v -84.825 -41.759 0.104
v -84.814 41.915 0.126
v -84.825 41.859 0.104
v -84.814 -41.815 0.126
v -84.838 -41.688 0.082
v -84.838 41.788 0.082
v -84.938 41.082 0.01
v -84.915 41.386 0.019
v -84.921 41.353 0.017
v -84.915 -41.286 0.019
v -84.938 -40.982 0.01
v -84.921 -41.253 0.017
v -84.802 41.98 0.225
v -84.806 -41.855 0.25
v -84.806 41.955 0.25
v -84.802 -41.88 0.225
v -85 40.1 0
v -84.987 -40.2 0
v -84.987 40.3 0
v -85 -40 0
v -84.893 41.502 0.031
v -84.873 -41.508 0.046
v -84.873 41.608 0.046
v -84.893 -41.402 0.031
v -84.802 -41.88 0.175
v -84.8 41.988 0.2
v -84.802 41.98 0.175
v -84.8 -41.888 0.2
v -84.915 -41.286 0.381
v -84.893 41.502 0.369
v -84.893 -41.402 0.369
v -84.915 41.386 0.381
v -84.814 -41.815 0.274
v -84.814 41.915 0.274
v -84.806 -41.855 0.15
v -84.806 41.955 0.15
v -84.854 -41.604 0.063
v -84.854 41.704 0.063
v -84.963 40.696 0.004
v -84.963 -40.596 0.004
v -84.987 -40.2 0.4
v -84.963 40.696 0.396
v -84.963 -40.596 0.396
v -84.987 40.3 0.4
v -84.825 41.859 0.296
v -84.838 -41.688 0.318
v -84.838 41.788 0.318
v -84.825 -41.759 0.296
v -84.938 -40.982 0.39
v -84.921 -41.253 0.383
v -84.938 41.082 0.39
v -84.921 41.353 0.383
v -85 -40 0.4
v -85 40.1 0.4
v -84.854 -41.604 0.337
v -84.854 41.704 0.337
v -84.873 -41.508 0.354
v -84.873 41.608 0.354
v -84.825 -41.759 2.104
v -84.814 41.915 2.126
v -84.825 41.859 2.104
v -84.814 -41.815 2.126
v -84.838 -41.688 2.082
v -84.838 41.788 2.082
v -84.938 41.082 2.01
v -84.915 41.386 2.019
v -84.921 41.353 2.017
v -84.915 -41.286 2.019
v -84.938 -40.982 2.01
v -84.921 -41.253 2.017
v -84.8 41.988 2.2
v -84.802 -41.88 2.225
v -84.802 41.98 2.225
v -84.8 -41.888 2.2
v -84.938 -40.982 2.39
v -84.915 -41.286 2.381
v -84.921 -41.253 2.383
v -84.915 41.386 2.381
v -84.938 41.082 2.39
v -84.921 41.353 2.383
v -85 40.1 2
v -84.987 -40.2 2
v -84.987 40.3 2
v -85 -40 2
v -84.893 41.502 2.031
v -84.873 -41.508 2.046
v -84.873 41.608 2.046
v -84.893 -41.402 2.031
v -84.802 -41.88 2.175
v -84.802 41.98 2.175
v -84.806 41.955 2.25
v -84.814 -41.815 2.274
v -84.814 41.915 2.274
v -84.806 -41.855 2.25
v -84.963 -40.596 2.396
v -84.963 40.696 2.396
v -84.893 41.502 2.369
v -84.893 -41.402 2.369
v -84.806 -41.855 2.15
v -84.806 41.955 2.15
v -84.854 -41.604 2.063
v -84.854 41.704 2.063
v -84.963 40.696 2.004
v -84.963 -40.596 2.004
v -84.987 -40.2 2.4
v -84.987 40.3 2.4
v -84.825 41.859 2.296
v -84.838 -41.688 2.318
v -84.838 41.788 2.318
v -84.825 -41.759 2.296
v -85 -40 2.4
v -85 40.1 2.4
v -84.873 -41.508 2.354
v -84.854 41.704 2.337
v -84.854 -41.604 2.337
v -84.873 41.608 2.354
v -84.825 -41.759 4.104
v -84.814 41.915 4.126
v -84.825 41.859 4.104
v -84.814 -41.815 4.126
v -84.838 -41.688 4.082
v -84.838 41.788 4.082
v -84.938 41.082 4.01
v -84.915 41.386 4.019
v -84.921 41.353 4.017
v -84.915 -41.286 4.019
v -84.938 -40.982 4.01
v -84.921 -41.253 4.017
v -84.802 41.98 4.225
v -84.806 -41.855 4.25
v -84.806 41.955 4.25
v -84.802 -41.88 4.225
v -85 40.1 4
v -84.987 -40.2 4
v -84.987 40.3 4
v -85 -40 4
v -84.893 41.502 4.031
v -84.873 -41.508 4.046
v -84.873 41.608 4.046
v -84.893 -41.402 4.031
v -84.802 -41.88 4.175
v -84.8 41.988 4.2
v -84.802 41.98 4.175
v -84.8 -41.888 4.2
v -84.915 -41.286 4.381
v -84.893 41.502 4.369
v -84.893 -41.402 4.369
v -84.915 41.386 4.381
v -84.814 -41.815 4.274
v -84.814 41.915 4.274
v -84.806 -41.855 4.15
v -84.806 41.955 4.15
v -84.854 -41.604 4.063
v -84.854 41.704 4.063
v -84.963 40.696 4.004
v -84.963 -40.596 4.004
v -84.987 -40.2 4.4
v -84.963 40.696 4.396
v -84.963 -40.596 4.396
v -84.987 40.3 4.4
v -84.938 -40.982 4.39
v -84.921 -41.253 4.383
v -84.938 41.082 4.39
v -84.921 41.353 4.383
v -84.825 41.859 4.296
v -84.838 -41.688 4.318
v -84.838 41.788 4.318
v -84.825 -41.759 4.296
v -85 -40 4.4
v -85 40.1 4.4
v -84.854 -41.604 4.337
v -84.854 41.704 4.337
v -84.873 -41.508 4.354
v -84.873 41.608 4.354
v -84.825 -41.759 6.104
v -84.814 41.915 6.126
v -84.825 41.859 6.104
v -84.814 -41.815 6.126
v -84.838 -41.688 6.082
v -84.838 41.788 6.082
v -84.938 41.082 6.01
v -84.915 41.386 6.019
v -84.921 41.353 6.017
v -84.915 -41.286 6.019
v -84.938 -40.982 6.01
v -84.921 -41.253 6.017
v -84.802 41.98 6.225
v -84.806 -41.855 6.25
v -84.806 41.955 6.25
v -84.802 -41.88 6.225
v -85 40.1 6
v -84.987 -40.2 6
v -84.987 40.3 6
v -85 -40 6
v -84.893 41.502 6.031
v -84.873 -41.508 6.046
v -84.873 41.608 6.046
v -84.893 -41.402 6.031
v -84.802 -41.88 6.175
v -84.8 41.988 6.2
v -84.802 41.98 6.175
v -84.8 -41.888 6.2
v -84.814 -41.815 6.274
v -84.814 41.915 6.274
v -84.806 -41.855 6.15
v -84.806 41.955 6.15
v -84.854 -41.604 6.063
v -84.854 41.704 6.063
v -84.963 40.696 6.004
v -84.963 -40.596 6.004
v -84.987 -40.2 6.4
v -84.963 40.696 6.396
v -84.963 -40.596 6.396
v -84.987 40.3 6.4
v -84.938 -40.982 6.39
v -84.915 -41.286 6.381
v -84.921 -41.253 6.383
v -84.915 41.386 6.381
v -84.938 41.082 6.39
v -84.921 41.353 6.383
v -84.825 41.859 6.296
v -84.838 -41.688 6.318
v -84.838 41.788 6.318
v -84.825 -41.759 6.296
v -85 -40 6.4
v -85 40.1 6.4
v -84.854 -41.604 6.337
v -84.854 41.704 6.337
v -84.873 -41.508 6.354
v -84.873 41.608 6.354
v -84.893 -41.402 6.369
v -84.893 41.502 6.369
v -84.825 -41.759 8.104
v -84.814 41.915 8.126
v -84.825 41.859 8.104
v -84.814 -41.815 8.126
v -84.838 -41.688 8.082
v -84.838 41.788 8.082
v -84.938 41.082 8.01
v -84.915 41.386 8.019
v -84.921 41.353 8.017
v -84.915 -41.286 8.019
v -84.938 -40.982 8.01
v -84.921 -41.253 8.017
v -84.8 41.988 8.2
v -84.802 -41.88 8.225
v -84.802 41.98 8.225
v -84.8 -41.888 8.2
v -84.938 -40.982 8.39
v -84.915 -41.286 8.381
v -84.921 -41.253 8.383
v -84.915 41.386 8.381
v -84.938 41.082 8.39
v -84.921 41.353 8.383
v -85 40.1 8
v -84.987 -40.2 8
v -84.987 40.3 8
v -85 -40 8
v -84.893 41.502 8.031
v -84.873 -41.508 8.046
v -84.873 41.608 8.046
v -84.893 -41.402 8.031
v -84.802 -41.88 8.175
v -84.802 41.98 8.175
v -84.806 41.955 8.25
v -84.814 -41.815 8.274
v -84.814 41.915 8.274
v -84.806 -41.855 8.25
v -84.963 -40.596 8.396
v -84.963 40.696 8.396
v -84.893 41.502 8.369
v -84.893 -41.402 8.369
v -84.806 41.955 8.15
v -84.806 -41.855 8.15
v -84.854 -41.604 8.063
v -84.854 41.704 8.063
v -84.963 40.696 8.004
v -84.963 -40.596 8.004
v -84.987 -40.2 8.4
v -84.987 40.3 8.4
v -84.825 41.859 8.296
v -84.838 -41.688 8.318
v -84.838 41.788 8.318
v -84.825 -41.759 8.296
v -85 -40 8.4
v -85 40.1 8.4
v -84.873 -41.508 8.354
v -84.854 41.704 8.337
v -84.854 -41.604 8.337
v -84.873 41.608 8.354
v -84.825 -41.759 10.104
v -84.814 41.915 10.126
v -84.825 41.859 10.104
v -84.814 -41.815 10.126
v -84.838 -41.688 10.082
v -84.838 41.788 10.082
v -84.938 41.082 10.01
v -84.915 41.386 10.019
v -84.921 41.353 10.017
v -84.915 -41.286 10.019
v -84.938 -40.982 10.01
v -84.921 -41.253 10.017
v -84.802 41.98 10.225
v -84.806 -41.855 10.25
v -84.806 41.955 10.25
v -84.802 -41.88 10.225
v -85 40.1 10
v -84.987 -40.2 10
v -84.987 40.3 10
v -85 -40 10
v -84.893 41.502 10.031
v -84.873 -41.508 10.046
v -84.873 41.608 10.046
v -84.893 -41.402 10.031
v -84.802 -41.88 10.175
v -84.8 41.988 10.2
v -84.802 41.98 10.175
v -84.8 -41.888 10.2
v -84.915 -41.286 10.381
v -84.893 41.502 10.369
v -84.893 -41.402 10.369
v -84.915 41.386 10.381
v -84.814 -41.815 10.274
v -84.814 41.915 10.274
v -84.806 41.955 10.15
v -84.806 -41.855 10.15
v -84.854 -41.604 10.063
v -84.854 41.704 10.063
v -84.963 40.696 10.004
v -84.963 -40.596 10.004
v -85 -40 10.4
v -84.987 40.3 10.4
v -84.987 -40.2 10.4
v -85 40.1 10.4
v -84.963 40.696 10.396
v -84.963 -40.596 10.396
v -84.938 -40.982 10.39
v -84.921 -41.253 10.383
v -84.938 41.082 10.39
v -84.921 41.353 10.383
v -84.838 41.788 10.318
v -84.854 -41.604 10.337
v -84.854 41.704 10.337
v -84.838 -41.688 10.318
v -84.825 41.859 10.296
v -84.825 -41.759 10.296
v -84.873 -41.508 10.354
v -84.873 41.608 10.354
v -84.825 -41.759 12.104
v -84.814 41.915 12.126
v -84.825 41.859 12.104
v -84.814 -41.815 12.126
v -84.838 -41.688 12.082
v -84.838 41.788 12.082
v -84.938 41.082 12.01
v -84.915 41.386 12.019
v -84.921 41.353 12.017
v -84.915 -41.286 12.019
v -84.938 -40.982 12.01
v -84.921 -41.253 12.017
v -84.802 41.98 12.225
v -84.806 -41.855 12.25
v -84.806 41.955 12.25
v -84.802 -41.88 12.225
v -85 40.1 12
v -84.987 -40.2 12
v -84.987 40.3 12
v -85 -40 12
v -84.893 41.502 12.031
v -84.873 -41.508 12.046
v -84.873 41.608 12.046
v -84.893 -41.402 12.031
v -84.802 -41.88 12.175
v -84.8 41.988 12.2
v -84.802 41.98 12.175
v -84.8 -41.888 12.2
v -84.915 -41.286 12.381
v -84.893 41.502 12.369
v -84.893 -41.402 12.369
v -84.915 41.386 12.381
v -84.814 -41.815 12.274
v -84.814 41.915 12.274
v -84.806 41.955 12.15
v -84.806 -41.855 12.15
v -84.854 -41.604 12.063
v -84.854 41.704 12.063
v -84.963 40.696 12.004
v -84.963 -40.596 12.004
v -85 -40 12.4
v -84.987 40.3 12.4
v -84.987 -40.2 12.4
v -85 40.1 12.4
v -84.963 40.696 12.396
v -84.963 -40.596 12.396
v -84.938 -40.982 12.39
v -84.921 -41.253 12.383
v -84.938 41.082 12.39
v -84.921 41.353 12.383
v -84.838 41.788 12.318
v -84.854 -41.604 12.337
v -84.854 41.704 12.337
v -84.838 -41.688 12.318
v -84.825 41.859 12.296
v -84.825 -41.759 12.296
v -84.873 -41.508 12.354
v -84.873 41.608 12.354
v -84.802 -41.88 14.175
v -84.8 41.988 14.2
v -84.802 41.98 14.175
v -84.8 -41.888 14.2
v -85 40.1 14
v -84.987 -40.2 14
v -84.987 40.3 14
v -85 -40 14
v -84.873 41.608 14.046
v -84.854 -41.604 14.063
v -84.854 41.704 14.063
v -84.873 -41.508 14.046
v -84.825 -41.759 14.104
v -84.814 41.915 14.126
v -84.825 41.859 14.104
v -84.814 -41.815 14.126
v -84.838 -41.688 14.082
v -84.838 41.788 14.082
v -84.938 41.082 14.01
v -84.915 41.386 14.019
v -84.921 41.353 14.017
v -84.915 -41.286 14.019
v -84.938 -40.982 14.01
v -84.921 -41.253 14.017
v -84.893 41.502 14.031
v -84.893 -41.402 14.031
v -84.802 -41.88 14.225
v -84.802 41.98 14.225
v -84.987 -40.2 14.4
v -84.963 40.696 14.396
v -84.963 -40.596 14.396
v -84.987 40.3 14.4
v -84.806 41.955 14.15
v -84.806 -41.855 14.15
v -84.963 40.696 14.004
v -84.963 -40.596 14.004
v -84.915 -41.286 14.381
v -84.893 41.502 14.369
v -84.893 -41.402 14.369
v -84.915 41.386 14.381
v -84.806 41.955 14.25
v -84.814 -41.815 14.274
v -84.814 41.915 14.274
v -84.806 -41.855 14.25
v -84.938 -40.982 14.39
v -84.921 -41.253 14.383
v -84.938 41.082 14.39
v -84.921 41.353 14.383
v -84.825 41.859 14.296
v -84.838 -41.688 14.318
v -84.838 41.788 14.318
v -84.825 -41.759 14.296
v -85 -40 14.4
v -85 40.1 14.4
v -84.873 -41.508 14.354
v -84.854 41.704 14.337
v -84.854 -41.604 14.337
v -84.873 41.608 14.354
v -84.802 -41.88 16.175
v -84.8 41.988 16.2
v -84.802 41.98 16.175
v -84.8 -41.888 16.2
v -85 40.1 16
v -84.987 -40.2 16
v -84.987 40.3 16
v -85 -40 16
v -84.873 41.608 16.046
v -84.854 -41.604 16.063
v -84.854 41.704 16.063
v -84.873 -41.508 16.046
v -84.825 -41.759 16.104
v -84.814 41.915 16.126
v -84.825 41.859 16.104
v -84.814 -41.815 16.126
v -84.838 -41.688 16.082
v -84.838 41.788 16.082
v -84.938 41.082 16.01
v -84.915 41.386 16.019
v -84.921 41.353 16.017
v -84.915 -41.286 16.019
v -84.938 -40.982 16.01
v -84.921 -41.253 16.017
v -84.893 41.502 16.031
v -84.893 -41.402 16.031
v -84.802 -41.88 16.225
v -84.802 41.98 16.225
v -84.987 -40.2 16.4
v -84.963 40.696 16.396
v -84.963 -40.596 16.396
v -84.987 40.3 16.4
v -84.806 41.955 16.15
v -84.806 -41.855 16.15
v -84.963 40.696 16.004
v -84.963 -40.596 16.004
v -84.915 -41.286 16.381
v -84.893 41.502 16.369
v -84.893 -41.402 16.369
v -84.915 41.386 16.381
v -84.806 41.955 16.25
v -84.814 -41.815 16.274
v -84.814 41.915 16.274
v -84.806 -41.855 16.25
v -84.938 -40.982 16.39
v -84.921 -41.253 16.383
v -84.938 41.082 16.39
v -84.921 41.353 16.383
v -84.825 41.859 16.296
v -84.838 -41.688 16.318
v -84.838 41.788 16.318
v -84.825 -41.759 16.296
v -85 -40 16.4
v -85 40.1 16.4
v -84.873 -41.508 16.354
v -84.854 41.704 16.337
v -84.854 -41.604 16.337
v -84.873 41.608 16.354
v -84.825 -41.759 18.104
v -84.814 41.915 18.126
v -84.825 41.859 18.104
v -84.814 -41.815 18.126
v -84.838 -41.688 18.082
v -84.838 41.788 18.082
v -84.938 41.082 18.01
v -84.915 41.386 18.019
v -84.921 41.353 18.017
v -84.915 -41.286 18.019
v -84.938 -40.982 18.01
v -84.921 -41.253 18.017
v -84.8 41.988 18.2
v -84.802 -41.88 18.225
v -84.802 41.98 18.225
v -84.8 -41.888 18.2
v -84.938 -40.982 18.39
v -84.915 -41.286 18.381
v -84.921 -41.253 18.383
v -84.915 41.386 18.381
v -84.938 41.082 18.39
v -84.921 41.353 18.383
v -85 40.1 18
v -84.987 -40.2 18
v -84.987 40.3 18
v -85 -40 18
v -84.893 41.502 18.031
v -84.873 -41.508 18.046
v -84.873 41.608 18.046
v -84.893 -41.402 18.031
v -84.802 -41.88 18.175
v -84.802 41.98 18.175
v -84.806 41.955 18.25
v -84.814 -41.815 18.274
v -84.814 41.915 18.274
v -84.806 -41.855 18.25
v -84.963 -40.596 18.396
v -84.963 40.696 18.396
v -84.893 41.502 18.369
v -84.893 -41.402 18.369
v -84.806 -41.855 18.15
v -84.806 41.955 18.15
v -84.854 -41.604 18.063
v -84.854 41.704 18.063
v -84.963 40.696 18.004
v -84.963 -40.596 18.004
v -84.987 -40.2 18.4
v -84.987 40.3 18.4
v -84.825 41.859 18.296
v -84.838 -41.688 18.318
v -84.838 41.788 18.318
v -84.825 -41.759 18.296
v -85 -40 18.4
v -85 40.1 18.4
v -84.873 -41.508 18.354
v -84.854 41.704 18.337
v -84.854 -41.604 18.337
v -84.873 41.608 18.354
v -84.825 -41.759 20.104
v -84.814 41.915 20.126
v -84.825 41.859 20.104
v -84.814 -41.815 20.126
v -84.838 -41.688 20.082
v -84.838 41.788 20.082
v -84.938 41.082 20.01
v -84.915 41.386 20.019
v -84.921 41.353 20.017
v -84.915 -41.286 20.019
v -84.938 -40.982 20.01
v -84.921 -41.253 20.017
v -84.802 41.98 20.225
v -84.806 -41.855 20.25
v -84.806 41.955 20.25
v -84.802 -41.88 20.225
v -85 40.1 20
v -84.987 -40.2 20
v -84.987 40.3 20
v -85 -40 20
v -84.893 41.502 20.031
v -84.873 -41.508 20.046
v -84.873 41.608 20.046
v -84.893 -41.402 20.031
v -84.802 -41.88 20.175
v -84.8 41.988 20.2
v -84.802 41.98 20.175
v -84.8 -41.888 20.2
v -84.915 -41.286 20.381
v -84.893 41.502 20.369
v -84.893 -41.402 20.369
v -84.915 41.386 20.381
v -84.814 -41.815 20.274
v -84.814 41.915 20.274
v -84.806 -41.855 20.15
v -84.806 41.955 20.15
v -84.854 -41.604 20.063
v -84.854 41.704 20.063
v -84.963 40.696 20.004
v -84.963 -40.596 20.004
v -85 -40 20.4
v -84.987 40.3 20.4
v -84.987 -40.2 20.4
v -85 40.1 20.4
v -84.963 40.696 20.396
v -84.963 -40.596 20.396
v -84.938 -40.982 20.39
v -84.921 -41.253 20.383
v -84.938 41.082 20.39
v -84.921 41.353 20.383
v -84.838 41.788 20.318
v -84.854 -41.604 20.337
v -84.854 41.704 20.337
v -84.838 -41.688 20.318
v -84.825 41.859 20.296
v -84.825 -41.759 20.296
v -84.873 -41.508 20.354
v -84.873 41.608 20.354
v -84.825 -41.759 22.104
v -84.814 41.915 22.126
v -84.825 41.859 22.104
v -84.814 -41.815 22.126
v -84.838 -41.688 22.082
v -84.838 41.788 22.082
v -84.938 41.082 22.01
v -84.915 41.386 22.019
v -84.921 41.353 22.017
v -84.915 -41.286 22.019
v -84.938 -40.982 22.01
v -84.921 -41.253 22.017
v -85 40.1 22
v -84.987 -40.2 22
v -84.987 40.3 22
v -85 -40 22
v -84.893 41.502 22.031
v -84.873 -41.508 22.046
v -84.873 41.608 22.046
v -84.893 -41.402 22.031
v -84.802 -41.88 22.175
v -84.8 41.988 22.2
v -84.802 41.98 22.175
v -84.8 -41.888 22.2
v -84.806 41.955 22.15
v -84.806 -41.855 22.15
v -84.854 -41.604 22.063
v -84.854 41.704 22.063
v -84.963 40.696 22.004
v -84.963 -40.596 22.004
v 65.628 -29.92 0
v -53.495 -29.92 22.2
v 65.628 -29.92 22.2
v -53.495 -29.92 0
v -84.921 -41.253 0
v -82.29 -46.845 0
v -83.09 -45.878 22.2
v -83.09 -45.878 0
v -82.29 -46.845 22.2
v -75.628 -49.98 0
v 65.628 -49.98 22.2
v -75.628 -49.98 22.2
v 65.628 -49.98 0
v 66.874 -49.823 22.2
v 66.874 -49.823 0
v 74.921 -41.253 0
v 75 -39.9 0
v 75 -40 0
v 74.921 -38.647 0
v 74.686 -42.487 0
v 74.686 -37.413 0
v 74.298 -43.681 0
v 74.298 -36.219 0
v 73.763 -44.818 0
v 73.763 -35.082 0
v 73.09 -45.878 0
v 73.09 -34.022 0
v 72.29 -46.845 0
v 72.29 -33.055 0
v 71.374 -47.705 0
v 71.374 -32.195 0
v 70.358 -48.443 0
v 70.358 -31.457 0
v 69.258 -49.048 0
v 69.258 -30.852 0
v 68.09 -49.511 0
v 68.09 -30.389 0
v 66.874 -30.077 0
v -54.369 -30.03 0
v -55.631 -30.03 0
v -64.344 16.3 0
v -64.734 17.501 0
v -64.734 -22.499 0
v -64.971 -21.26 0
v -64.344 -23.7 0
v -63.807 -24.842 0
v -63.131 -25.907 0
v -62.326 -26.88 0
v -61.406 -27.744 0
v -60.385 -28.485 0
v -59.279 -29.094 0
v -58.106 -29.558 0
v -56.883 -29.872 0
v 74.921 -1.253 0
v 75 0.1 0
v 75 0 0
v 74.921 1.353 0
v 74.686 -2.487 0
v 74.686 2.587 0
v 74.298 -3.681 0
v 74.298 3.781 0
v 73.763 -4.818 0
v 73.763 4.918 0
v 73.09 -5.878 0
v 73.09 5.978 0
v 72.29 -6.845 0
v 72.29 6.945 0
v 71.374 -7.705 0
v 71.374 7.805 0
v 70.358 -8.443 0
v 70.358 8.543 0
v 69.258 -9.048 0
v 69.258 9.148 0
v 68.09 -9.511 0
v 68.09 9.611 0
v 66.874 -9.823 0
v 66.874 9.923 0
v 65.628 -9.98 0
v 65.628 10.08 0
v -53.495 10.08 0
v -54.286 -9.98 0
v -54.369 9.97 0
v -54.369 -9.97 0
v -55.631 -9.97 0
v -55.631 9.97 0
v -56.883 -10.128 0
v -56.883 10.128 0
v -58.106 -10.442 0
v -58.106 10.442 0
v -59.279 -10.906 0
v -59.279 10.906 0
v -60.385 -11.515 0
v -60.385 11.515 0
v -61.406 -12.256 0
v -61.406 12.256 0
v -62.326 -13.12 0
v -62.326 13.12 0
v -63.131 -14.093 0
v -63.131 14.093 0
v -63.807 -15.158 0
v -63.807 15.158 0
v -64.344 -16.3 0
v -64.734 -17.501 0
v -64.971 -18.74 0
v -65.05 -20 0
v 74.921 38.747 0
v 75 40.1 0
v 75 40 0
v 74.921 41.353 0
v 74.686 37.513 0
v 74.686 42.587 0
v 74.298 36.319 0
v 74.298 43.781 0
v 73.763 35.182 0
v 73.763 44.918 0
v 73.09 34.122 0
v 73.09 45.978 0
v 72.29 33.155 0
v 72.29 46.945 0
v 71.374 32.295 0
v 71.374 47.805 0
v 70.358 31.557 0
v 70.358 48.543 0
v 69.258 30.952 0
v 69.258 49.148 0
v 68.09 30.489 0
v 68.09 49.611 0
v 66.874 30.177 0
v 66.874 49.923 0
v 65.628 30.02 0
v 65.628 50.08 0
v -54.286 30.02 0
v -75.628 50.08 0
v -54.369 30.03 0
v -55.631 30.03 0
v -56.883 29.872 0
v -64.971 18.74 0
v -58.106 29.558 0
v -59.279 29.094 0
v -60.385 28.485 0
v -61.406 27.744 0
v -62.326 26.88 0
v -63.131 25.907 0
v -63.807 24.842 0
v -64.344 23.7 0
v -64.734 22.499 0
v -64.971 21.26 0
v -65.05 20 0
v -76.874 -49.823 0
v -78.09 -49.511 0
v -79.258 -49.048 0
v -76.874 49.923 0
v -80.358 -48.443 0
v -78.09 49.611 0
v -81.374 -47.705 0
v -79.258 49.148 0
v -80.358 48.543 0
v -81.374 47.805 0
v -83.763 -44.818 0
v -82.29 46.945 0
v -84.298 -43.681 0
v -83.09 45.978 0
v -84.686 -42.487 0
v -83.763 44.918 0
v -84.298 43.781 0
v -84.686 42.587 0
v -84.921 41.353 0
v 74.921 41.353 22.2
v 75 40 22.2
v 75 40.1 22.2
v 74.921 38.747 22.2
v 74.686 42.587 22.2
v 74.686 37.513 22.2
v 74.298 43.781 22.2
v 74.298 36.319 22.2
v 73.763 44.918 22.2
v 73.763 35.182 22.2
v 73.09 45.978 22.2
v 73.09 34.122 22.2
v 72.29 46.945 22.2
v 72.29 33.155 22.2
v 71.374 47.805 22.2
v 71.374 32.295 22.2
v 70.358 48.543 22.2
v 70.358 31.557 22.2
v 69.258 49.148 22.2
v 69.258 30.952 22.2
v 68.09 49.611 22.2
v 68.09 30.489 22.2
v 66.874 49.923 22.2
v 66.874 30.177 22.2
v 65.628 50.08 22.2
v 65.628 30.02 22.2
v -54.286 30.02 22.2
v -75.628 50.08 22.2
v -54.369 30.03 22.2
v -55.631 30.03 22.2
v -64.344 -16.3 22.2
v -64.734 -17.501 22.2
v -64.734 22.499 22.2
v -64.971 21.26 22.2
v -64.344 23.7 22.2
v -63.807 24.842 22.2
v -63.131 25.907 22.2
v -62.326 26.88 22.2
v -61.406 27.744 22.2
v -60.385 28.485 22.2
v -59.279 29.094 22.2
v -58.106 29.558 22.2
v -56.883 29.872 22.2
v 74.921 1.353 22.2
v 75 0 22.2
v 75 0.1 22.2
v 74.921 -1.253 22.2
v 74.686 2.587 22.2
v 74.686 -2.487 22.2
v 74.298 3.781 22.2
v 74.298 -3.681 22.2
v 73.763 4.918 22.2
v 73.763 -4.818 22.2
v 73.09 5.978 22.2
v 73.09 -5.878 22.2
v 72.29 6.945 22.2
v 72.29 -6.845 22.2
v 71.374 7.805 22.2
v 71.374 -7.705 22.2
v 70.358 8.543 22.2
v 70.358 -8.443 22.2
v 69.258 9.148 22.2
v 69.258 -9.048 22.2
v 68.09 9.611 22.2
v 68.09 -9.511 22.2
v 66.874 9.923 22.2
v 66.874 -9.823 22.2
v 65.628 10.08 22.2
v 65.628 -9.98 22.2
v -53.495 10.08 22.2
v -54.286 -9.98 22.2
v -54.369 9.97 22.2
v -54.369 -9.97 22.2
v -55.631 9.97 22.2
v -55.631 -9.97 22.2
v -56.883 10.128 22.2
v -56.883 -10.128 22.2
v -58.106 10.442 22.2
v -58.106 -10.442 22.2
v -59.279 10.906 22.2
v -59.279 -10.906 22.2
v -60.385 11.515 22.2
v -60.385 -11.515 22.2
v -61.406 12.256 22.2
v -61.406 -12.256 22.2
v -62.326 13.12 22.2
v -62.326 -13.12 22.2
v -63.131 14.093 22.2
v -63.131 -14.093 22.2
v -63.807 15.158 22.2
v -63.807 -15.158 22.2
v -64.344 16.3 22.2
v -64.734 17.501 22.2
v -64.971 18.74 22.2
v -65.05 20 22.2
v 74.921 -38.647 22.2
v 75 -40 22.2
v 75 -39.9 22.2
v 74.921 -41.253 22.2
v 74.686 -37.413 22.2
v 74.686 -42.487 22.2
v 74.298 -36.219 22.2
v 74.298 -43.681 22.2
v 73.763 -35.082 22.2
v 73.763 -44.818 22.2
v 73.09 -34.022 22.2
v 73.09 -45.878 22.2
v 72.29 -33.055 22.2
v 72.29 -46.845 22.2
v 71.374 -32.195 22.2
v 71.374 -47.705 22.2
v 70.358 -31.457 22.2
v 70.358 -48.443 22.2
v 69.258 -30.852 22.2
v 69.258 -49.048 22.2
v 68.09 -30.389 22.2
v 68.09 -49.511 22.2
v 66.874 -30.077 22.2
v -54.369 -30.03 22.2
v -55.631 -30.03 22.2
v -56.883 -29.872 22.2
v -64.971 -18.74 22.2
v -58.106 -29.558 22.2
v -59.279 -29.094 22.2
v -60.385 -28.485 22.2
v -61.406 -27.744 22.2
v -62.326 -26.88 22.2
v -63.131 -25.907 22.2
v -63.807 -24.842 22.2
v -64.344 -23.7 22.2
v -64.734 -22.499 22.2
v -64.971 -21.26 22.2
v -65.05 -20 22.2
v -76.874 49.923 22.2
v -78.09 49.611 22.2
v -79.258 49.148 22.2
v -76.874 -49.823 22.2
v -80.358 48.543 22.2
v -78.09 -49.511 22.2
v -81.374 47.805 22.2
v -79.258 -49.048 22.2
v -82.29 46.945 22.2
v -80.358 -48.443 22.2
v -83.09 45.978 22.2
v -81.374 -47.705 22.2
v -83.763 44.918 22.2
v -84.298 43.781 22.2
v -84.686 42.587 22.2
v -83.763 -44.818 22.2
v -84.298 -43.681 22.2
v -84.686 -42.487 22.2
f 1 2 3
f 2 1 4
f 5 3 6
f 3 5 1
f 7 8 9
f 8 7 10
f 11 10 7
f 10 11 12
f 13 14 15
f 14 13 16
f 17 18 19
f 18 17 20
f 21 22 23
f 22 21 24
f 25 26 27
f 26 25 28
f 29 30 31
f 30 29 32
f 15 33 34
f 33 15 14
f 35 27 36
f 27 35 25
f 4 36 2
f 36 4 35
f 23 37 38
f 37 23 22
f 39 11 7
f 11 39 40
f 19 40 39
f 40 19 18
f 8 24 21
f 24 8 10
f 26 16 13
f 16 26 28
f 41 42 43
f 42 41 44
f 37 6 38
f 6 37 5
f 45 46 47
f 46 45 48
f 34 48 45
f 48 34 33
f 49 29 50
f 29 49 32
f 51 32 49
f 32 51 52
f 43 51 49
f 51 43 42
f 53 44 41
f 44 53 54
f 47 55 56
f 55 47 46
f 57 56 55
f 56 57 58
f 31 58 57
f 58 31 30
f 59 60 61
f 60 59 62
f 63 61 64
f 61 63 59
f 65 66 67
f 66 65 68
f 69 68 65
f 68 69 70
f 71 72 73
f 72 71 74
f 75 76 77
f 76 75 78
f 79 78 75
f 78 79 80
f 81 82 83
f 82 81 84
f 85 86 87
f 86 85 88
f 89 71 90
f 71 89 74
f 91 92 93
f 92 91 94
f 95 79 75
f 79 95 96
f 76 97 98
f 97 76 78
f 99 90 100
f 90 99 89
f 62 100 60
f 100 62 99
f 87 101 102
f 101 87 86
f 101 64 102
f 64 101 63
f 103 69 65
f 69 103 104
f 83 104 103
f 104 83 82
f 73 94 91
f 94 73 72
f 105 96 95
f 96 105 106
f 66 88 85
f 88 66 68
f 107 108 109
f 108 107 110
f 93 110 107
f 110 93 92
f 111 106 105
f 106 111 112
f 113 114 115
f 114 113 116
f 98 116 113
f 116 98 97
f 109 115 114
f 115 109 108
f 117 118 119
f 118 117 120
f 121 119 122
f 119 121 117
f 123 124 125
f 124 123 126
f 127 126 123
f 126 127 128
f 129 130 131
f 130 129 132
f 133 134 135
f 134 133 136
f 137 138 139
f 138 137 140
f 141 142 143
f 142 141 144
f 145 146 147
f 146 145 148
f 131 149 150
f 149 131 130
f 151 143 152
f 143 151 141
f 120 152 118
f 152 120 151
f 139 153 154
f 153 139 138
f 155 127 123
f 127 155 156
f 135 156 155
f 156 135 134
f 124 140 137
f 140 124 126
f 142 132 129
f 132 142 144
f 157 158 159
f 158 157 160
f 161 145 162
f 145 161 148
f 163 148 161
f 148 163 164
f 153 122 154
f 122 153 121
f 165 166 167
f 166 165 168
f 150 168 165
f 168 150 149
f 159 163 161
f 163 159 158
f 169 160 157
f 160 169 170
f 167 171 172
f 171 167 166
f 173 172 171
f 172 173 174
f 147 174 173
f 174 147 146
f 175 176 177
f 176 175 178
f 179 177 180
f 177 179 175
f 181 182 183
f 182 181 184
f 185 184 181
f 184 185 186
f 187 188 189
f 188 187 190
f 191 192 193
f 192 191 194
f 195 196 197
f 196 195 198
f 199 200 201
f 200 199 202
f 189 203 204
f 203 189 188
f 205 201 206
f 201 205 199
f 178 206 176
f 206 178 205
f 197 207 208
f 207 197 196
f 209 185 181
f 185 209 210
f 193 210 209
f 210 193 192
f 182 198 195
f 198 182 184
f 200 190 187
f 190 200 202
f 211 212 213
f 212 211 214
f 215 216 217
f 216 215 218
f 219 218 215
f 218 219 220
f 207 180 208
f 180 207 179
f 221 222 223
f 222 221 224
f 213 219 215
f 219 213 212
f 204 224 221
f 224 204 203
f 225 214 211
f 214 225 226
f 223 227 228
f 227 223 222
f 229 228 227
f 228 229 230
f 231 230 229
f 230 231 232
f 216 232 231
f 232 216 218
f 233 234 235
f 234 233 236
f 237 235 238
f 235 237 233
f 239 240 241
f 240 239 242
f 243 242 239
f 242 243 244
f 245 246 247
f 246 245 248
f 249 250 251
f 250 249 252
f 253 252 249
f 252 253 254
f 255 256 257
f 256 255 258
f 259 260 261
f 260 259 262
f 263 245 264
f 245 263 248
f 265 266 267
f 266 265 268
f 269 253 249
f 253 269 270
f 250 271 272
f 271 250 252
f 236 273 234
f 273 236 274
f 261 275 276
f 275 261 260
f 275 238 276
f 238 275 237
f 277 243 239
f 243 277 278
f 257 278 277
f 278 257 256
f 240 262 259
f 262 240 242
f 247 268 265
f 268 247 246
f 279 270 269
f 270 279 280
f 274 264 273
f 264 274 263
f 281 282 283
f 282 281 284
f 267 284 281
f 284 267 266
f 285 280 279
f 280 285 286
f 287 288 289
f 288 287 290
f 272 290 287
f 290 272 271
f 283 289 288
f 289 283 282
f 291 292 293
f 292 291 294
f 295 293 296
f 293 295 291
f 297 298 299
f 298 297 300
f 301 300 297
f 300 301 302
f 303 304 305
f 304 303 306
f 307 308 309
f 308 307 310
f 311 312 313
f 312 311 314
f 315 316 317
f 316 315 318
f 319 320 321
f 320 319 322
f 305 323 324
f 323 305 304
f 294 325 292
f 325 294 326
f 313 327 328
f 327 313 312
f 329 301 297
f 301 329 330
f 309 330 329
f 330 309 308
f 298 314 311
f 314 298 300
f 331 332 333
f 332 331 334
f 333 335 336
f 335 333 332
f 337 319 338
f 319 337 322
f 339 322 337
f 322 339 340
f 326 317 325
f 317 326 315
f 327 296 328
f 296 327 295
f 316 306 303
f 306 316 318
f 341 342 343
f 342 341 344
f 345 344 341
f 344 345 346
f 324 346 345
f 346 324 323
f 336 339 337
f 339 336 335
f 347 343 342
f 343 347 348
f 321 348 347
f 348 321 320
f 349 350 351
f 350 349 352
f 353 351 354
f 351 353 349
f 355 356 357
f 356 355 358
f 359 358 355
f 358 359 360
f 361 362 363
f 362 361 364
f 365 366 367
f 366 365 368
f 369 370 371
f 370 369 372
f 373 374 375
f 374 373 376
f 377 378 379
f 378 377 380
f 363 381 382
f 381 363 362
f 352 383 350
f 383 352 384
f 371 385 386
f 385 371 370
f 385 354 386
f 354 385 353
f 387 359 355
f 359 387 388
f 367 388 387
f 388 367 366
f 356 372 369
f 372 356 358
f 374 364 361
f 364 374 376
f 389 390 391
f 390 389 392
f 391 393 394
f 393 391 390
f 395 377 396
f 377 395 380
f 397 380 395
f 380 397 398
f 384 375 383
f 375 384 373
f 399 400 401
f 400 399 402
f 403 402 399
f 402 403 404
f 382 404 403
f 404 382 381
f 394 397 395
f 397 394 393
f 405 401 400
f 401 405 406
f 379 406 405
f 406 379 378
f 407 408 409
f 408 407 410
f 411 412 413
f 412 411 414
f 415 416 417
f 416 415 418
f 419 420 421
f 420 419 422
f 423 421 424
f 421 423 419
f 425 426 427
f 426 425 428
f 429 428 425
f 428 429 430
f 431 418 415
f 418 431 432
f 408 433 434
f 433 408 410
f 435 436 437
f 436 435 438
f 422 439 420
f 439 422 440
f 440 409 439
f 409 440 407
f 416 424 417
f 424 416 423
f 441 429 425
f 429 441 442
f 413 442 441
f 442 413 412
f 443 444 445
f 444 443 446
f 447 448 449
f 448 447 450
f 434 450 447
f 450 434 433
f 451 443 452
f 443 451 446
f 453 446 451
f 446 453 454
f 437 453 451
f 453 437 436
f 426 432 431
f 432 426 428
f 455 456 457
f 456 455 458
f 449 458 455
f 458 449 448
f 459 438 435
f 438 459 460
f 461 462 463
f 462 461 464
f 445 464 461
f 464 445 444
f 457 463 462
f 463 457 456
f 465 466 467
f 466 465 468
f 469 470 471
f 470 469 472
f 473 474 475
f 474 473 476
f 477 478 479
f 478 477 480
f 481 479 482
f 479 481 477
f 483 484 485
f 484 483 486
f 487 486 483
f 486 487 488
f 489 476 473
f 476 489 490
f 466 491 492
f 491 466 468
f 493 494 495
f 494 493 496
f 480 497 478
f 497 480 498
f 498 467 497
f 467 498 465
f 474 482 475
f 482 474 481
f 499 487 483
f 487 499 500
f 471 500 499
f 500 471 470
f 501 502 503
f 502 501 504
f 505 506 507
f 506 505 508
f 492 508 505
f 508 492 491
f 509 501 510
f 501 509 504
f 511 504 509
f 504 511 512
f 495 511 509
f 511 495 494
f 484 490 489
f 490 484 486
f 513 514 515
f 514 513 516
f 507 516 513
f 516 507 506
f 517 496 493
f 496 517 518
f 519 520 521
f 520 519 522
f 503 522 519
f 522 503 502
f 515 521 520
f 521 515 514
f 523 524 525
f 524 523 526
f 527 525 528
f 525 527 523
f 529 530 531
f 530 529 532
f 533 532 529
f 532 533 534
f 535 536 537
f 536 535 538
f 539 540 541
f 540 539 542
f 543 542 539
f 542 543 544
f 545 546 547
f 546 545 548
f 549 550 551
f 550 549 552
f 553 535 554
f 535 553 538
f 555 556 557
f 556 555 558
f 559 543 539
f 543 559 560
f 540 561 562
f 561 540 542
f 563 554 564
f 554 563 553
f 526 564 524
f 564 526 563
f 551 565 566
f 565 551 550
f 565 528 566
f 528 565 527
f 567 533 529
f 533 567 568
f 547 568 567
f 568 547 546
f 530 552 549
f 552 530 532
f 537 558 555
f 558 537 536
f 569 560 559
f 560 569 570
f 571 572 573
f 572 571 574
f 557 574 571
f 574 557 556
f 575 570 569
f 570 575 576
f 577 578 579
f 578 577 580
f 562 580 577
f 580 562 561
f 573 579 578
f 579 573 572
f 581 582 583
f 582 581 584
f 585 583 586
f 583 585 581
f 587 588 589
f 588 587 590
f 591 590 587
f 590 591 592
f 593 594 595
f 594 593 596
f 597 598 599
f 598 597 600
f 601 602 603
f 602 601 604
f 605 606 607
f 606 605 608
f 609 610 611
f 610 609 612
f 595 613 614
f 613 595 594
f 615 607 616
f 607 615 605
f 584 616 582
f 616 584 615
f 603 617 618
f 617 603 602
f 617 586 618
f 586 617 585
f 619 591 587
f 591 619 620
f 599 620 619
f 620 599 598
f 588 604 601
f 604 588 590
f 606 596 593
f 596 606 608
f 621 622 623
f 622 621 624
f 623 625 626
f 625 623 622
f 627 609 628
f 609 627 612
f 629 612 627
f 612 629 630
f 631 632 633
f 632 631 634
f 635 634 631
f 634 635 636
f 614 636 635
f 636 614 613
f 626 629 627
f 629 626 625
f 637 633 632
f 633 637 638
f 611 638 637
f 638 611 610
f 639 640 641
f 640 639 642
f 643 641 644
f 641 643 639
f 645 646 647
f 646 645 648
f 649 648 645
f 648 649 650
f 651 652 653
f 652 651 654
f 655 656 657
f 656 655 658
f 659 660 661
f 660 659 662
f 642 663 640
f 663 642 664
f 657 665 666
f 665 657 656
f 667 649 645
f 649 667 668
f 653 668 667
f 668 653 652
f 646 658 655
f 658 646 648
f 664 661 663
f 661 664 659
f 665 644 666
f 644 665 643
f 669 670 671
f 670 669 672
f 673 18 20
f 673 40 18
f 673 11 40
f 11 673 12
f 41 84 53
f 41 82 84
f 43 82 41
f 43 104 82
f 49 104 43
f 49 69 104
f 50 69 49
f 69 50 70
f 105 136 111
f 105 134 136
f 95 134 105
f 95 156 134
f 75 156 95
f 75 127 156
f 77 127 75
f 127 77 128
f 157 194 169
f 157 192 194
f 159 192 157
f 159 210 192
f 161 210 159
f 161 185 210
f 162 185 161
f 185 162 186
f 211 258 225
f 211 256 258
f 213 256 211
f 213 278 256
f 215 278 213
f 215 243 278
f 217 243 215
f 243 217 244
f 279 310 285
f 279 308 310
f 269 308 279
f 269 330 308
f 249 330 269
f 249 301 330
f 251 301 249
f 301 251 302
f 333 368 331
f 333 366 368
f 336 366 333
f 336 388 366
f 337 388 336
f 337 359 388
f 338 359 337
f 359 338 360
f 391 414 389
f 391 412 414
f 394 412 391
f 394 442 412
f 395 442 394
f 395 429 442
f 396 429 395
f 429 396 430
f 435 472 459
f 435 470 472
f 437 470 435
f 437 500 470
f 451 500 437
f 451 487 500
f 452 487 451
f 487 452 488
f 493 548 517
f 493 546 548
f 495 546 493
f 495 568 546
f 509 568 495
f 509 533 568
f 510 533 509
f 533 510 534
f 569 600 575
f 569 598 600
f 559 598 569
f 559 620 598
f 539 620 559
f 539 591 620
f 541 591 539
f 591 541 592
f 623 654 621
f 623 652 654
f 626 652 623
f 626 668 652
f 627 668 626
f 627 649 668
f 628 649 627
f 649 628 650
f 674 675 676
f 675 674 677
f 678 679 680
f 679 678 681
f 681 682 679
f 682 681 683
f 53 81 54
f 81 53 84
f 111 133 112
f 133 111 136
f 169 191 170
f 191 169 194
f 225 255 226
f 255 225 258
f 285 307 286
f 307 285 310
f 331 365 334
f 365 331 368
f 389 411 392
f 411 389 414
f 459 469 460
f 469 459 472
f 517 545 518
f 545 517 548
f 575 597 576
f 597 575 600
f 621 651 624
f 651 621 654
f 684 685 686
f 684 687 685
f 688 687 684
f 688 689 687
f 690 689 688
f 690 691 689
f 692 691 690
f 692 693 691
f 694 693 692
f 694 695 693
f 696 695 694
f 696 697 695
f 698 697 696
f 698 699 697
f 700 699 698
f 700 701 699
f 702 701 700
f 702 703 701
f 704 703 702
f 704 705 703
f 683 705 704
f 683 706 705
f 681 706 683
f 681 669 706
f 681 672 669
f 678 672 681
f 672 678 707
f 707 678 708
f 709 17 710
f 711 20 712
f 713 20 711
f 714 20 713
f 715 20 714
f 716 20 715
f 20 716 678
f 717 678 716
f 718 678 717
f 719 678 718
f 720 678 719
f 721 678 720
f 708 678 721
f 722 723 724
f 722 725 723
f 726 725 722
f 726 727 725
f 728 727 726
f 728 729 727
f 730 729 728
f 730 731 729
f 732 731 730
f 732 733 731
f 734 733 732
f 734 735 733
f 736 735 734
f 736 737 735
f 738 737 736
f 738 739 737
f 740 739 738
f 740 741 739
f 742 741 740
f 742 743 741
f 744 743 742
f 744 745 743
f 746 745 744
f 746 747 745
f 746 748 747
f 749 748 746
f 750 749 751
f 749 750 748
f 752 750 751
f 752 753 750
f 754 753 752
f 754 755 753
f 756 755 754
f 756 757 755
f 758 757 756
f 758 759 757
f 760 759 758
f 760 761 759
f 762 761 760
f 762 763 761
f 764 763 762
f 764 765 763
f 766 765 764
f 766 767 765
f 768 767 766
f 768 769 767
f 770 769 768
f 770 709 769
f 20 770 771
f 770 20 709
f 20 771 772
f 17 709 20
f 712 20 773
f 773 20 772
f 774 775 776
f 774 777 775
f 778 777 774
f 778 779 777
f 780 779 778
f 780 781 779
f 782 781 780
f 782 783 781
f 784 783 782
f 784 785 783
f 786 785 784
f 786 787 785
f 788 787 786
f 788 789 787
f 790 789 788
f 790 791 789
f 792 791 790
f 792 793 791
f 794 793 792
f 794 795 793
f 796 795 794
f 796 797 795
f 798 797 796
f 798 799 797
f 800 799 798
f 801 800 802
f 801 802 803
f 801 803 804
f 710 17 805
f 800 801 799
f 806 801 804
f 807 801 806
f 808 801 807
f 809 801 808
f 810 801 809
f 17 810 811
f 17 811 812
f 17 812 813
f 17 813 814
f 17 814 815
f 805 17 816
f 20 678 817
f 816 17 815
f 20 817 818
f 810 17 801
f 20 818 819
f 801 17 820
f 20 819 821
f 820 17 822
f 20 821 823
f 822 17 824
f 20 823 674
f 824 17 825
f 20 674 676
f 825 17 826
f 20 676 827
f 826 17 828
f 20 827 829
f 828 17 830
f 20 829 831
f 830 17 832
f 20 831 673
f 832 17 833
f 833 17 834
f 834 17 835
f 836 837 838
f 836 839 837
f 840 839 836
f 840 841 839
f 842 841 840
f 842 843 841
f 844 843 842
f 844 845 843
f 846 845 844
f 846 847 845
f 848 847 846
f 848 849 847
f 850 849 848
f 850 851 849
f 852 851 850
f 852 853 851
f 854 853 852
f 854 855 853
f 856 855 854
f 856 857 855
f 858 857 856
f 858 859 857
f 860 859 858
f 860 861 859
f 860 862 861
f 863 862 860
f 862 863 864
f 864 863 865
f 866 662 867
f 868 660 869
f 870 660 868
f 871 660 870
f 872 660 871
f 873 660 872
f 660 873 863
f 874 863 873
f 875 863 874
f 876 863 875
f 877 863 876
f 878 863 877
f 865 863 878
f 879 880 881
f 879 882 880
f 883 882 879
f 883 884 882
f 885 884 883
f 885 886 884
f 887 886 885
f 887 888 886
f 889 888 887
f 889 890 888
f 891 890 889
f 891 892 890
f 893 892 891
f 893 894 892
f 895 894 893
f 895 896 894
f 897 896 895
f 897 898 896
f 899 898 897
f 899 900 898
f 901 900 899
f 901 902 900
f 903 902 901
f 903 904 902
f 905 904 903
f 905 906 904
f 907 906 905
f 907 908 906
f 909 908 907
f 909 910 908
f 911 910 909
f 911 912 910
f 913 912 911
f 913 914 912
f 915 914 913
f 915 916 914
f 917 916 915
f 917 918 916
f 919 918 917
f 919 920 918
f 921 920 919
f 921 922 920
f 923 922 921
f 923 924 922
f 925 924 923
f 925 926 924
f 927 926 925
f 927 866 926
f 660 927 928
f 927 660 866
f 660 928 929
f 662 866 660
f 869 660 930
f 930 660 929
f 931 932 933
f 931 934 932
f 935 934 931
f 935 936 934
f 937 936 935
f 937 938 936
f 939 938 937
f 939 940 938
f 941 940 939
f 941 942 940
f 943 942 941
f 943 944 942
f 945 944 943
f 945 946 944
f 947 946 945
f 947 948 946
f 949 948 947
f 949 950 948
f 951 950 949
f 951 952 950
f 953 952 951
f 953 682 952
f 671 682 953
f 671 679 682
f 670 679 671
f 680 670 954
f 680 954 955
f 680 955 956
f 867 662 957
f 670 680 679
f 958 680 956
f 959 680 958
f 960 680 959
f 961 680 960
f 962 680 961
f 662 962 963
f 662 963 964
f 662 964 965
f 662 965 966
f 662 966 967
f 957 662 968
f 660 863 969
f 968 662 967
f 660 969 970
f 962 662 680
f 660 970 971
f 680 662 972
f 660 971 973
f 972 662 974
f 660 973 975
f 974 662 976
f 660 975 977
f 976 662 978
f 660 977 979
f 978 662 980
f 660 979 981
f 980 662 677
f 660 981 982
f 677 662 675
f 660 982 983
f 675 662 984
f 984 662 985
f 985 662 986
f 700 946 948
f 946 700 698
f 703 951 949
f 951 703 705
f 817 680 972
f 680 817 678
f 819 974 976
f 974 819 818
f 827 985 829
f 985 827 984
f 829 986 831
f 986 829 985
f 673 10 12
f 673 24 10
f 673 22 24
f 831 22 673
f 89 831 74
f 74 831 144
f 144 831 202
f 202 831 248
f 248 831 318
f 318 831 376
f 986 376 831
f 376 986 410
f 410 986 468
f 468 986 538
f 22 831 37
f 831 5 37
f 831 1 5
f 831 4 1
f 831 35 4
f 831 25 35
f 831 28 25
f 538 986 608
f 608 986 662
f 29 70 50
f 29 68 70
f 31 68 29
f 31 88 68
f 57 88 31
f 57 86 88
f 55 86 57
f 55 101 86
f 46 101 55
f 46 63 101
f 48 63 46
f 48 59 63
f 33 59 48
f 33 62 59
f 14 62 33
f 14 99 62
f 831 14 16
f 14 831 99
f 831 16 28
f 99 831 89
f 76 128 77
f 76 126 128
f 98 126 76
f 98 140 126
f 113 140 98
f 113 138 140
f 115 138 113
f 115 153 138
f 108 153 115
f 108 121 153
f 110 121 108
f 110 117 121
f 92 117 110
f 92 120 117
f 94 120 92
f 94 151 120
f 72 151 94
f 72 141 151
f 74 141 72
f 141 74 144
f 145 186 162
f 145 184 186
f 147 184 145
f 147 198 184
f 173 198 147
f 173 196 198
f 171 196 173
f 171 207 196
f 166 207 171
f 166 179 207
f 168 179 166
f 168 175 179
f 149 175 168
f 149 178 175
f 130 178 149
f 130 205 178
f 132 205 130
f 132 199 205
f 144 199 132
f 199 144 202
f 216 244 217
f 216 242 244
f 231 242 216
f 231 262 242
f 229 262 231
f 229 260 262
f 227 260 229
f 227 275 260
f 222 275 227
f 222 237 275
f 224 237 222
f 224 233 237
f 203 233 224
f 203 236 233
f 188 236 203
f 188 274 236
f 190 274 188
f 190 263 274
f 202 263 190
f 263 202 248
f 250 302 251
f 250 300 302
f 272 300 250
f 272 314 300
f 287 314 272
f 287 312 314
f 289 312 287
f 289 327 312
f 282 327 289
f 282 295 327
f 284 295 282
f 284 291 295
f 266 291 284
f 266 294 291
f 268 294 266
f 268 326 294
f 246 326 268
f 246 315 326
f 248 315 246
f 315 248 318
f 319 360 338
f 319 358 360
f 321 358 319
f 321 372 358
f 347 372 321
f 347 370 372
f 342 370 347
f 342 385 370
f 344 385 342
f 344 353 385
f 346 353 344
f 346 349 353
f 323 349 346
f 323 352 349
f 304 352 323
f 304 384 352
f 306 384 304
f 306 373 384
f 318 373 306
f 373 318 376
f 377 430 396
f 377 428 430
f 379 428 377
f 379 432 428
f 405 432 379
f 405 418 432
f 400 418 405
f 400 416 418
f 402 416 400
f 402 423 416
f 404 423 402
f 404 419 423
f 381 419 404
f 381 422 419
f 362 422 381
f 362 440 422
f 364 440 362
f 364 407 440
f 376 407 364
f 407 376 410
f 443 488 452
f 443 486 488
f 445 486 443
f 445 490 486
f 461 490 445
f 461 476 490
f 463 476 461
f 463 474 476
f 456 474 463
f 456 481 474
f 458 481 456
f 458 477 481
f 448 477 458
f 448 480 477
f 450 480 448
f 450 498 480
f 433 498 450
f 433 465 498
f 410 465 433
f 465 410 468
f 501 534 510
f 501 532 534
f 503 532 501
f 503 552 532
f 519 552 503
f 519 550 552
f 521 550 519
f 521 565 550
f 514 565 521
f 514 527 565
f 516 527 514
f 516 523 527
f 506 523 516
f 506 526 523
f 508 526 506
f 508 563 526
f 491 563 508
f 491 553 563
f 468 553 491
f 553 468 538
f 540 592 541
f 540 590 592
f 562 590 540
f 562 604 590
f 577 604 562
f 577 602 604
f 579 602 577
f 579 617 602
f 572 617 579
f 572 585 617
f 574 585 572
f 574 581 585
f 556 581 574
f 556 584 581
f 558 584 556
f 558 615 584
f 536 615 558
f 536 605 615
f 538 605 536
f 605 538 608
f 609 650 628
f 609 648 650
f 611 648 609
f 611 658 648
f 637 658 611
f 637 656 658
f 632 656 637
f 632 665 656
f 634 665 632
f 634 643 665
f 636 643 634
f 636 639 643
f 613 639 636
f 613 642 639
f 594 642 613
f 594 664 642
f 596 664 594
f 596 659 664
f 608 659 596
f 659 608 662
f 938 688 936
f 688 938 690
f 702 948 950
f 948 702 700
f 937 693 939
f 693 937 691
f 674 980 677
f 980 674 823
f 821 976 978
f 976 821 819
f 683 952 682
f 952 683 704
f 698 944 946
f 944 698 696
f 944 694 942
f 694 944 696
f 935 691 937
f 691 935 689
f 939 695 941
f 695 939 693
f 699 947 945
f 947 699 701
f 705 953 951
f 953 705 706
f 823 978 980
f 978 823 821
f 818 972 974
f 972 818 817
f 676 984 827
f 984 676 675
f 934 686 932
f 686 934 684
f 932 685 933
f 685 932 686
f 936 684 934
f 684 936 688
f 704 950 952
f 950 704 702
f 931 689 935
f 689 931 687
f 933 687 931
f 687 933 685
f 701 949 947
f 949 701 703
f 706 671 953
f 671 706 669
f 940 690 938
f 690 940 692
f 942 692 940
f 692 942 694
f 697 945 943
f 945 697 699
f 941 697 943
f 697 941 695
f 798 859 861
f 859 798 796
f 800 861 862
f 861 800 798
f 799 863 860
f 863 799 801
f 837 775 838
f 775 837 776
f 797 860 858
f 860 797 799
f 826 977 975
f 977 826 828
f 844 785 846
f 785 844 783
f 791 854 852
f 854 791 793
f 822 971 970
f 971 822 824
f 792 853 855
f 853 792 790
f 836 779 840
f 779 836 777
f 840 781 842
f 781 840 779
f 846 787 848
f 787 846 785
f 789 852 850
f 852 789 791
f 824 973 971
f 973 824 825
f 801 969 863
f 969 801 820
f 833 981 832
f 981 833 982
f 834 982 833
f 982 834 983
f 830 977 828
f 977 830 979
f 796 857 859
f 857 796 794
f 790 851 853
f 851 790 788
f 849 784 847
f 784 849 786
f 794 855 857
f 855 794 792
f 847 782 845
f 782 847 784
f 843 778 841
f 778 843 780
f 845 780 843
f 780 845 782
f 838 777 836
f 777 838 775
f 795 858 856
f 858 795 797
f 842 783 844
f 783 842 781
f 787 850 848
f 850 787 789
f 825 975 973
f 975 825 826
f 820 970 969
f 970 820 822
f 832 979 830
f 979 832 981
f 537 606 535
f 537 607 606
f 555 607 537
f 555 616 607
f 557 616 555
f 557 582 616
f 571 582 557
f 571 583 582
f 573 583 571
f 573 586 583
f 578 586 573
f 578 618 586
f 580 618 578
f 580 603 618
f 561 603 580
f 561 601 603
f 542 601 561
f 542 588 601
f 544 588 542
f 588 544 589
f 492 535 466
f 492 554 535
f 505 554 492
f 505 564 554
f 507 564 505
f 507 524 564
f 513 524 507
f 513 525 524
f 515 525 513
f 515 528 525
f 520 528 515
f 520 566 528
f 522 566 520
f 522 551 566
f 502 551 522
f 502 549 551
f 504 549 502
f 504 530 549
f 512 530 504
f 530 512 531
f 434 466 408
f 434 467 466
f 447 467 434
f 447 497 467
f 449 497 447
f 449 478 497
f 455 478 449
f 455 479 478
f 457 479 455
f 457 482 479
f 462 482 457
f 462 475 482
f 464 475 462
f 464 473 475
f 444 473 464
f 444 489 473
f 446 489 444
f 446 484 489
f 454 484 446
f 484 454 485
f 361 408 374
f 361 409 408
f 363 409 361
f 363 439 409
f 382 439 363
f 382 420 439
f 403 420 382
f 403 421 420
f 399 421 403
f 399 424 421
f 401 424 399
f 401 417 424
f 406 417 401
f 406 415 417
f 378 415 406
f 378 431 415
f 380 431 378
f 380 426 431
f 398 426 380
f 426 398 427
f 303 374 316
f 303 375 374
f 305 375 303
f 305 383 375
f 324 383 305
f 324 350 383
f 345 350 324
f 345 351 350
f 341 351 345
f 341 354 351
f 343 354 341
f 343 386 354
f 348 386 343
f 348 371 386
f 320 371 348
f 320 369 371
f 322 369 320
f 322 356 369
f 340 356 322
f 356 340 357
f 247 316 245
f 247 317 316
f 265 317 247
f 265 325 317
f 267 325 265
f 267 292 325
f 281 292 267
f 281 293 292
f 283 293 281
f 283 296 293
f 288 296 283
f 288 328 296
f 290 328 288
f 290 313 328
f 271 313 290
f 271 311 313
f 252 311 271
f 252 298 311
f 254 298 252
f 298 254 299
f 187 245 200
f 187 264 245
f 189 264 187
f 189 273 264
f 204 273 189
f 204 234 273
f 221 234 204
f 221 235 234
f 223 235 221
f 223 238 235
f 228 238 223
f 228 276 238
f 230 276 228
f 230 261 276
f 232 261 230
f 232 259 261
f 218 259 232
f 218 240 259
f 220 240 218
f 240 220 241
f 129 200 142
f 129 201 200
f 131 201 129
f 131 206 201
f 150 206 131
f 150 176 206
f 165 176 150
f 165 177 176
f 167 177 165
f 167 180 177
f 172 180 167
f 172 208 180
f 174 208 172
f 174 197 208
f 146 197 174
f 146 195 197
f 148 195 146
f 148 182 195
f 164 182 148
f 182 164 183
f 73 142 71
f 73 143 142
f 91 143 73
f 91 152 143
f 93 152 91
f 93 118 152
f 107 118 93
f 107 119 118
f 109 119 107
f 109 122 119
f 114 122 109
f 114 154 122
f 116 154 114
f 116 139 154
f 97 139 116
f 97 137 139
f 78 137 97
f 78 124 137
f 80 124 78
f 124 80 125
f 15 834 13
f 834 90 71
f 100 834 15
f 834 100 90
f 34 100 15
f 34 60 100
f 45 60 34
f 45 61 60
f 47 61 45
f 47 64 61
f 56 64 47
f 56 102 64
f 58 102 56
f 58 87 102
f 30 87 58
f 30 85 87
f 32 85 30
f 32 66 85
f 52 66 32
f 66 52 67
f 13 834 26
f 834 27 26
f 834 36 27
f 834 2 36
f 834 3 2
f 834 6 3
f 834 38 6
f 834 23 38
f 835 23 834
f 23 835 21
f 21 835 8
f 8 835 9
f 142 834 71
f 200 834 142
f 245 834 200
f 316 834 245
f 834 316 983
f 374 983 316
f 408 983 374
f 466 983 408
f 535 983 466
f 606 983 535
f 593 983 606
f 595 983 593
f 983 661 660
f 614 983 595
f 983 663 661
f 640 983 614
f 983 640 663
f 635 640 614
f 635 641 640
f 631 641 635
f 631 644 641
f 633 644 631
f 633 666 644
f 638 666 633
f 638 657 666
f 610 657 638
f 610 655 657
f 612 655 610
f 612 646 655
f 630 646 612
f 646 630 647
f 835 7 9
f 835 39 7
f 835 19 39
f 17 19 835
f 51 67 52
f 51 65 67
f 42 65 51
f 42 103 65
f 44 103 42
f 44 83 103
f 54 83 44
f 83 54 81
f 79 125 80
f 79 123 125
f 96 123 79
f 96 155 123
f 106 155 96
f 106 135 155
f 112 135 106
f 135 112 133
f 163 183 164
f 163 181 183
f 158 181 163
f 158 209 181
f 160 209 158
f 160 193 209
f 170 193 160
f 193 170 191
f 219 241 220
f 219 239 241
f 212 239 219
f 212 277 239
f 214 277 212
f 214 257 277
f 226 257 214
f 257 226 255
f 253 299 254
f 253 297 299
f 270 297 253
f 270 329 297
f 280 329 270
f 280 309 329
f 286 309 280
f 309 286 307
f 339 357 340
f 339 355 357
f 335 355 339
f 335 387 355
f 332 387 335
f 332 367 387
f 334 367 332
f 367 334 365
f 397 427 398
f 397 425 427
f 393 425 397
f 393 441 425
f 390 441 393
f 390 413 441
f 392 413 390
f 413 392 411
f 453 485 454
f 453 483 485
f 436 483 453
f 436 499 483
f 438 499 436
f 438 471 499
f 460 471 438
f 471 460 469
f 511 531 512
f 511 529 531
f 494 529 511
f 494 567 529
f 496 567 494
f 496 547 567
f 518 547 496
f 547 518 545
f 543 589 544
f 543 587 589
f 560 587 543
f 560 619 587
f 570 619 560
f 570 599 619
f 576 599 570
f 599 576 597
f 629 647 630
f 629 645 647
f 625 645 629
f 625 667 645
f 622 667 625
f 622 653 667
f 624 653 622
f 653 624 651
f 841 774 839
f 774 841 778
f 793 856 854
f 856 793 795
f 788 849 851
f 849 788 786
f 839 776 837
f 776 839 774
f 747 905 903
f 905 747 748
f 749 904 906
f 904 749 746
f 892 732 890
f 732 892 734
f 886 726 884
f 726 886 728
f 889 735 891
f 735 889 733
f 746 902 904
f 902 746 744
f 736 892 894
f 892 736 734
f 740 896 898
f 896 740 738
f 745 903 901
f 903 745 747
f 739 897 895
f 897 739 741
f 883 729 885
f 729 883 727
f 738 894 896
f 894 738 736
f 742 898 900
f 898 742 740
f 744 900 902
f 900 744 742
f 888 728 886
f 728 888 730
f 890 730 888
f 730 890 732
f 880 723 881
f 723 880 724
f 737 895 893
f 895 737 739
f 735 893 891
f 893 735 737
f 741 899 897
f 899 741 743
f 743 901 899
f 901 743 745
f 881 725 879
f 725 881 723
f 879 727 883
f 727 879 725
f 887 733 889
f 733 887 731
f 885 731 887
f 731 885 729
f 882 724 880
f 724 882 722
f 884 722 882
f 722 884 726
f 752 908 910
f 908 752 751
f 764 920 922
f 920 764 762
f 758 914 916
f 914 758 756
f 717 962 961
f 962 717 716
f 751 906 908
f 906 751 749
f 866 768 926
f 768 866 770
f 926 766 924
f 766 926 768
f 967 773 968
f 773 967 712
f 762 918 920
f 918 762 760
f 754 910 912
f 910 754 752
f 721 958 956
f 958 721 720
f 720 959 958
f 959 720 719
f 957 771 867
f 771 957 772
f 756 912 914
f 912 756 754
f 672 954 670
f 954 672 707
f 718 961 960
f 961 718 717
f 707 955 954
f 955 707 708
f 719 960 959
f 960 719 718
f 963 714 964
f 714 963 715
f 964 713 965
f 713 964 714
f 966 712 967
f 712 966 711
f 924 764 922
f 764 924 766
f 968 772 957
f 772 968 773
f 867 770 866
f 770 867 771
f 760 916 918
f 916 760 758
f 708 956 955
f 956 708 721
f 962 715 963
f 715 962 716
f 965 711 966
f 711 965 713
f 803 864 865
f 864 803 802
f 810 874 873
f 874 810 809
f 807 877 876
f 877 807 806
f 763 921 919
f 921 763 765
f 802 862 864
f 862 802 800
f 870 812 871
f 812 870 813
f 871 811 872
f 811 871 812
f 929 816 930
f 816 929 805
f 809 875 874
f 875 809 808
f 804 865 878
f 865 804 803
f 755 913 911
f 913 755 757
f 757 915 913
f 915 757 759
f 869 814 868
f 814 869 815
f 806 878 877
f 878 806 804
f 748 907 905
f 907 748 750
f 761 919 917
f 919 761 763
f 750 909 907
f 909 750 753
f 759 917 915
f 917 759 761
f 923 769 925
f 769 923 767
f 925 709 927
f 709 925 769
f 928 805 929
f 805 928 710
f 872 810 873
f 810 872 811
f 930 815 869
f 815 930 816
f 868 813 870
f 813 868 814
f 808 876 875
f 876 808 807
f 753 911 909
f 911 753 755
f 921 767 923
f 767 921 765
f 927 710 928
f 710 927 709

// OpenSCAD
//-------------------------------------------------------------------------------------------
// Max Flow Test
// Original Design : Cnc Kitchen
//                   https://www.printables.com/fr/model/342075-extrusion-test-structure
// Freely adapted by 5@xes  2023
//---------------------------
//     MaxFlow Script
//---------------------------
// Nozzle               : 0.4
// Layer                : 0.25
// Start Value          : 50 %
// Value Increment      : 10 %
// Change Layer         : 8 
// Offset Layer         : 0
//-------------------------------------------------------------------------------------------
// Modification : None
//-------------------------------------------------------------------------------------------

$fn=50;
font = "Arial:style=Bold";

Hc=0.2; // Layer Height
Line_Width = 0.4; // line Width

Height = 110*Hc-1;
letter_size = 0.30*Height;
letter_height = Line_Width;

Base();


module Base() {
  translate([-75, -40, 0]) difference() {  
    minkowski() {
        union() {
            translate([0, 0, 0]) cube([10,80,Height+Hc], center = false);
            translate([0, 0, 0]) cube([140,0.1,Height+Hc], center = false);
            translate([0, 40, 0]) cube([140,0.1,Height+Hc], center = false);
            translate([0, 80, 0]) cube([140,0.1,Height+Hc], center = false);
        }
      cylinder(r=10,h=1, center = false);
    }
    translate([20, 20, 0]) cylinder(h = Height*2, r1 = 10.05, r2 = 10.05, center = false);
    translate([20, 60, 0]) cylinder(h = Height*2, r1 = 10.05, r2 = 10.05, center = false);
    
    for (a =[0:2:30])
        translate([-10, -10, a+Hc]) rotate([-90,0,0]) cylinder(h = 150, r1 = 0.2, r2 = 0.2, center = false);
  }
}

module letter(Txt) {
  color("Yellow")
  linear_extrude(height = letter_height) {
    text(Txt, size = letter_size, font = font, halign = "center", valign = "center");
  }
}
